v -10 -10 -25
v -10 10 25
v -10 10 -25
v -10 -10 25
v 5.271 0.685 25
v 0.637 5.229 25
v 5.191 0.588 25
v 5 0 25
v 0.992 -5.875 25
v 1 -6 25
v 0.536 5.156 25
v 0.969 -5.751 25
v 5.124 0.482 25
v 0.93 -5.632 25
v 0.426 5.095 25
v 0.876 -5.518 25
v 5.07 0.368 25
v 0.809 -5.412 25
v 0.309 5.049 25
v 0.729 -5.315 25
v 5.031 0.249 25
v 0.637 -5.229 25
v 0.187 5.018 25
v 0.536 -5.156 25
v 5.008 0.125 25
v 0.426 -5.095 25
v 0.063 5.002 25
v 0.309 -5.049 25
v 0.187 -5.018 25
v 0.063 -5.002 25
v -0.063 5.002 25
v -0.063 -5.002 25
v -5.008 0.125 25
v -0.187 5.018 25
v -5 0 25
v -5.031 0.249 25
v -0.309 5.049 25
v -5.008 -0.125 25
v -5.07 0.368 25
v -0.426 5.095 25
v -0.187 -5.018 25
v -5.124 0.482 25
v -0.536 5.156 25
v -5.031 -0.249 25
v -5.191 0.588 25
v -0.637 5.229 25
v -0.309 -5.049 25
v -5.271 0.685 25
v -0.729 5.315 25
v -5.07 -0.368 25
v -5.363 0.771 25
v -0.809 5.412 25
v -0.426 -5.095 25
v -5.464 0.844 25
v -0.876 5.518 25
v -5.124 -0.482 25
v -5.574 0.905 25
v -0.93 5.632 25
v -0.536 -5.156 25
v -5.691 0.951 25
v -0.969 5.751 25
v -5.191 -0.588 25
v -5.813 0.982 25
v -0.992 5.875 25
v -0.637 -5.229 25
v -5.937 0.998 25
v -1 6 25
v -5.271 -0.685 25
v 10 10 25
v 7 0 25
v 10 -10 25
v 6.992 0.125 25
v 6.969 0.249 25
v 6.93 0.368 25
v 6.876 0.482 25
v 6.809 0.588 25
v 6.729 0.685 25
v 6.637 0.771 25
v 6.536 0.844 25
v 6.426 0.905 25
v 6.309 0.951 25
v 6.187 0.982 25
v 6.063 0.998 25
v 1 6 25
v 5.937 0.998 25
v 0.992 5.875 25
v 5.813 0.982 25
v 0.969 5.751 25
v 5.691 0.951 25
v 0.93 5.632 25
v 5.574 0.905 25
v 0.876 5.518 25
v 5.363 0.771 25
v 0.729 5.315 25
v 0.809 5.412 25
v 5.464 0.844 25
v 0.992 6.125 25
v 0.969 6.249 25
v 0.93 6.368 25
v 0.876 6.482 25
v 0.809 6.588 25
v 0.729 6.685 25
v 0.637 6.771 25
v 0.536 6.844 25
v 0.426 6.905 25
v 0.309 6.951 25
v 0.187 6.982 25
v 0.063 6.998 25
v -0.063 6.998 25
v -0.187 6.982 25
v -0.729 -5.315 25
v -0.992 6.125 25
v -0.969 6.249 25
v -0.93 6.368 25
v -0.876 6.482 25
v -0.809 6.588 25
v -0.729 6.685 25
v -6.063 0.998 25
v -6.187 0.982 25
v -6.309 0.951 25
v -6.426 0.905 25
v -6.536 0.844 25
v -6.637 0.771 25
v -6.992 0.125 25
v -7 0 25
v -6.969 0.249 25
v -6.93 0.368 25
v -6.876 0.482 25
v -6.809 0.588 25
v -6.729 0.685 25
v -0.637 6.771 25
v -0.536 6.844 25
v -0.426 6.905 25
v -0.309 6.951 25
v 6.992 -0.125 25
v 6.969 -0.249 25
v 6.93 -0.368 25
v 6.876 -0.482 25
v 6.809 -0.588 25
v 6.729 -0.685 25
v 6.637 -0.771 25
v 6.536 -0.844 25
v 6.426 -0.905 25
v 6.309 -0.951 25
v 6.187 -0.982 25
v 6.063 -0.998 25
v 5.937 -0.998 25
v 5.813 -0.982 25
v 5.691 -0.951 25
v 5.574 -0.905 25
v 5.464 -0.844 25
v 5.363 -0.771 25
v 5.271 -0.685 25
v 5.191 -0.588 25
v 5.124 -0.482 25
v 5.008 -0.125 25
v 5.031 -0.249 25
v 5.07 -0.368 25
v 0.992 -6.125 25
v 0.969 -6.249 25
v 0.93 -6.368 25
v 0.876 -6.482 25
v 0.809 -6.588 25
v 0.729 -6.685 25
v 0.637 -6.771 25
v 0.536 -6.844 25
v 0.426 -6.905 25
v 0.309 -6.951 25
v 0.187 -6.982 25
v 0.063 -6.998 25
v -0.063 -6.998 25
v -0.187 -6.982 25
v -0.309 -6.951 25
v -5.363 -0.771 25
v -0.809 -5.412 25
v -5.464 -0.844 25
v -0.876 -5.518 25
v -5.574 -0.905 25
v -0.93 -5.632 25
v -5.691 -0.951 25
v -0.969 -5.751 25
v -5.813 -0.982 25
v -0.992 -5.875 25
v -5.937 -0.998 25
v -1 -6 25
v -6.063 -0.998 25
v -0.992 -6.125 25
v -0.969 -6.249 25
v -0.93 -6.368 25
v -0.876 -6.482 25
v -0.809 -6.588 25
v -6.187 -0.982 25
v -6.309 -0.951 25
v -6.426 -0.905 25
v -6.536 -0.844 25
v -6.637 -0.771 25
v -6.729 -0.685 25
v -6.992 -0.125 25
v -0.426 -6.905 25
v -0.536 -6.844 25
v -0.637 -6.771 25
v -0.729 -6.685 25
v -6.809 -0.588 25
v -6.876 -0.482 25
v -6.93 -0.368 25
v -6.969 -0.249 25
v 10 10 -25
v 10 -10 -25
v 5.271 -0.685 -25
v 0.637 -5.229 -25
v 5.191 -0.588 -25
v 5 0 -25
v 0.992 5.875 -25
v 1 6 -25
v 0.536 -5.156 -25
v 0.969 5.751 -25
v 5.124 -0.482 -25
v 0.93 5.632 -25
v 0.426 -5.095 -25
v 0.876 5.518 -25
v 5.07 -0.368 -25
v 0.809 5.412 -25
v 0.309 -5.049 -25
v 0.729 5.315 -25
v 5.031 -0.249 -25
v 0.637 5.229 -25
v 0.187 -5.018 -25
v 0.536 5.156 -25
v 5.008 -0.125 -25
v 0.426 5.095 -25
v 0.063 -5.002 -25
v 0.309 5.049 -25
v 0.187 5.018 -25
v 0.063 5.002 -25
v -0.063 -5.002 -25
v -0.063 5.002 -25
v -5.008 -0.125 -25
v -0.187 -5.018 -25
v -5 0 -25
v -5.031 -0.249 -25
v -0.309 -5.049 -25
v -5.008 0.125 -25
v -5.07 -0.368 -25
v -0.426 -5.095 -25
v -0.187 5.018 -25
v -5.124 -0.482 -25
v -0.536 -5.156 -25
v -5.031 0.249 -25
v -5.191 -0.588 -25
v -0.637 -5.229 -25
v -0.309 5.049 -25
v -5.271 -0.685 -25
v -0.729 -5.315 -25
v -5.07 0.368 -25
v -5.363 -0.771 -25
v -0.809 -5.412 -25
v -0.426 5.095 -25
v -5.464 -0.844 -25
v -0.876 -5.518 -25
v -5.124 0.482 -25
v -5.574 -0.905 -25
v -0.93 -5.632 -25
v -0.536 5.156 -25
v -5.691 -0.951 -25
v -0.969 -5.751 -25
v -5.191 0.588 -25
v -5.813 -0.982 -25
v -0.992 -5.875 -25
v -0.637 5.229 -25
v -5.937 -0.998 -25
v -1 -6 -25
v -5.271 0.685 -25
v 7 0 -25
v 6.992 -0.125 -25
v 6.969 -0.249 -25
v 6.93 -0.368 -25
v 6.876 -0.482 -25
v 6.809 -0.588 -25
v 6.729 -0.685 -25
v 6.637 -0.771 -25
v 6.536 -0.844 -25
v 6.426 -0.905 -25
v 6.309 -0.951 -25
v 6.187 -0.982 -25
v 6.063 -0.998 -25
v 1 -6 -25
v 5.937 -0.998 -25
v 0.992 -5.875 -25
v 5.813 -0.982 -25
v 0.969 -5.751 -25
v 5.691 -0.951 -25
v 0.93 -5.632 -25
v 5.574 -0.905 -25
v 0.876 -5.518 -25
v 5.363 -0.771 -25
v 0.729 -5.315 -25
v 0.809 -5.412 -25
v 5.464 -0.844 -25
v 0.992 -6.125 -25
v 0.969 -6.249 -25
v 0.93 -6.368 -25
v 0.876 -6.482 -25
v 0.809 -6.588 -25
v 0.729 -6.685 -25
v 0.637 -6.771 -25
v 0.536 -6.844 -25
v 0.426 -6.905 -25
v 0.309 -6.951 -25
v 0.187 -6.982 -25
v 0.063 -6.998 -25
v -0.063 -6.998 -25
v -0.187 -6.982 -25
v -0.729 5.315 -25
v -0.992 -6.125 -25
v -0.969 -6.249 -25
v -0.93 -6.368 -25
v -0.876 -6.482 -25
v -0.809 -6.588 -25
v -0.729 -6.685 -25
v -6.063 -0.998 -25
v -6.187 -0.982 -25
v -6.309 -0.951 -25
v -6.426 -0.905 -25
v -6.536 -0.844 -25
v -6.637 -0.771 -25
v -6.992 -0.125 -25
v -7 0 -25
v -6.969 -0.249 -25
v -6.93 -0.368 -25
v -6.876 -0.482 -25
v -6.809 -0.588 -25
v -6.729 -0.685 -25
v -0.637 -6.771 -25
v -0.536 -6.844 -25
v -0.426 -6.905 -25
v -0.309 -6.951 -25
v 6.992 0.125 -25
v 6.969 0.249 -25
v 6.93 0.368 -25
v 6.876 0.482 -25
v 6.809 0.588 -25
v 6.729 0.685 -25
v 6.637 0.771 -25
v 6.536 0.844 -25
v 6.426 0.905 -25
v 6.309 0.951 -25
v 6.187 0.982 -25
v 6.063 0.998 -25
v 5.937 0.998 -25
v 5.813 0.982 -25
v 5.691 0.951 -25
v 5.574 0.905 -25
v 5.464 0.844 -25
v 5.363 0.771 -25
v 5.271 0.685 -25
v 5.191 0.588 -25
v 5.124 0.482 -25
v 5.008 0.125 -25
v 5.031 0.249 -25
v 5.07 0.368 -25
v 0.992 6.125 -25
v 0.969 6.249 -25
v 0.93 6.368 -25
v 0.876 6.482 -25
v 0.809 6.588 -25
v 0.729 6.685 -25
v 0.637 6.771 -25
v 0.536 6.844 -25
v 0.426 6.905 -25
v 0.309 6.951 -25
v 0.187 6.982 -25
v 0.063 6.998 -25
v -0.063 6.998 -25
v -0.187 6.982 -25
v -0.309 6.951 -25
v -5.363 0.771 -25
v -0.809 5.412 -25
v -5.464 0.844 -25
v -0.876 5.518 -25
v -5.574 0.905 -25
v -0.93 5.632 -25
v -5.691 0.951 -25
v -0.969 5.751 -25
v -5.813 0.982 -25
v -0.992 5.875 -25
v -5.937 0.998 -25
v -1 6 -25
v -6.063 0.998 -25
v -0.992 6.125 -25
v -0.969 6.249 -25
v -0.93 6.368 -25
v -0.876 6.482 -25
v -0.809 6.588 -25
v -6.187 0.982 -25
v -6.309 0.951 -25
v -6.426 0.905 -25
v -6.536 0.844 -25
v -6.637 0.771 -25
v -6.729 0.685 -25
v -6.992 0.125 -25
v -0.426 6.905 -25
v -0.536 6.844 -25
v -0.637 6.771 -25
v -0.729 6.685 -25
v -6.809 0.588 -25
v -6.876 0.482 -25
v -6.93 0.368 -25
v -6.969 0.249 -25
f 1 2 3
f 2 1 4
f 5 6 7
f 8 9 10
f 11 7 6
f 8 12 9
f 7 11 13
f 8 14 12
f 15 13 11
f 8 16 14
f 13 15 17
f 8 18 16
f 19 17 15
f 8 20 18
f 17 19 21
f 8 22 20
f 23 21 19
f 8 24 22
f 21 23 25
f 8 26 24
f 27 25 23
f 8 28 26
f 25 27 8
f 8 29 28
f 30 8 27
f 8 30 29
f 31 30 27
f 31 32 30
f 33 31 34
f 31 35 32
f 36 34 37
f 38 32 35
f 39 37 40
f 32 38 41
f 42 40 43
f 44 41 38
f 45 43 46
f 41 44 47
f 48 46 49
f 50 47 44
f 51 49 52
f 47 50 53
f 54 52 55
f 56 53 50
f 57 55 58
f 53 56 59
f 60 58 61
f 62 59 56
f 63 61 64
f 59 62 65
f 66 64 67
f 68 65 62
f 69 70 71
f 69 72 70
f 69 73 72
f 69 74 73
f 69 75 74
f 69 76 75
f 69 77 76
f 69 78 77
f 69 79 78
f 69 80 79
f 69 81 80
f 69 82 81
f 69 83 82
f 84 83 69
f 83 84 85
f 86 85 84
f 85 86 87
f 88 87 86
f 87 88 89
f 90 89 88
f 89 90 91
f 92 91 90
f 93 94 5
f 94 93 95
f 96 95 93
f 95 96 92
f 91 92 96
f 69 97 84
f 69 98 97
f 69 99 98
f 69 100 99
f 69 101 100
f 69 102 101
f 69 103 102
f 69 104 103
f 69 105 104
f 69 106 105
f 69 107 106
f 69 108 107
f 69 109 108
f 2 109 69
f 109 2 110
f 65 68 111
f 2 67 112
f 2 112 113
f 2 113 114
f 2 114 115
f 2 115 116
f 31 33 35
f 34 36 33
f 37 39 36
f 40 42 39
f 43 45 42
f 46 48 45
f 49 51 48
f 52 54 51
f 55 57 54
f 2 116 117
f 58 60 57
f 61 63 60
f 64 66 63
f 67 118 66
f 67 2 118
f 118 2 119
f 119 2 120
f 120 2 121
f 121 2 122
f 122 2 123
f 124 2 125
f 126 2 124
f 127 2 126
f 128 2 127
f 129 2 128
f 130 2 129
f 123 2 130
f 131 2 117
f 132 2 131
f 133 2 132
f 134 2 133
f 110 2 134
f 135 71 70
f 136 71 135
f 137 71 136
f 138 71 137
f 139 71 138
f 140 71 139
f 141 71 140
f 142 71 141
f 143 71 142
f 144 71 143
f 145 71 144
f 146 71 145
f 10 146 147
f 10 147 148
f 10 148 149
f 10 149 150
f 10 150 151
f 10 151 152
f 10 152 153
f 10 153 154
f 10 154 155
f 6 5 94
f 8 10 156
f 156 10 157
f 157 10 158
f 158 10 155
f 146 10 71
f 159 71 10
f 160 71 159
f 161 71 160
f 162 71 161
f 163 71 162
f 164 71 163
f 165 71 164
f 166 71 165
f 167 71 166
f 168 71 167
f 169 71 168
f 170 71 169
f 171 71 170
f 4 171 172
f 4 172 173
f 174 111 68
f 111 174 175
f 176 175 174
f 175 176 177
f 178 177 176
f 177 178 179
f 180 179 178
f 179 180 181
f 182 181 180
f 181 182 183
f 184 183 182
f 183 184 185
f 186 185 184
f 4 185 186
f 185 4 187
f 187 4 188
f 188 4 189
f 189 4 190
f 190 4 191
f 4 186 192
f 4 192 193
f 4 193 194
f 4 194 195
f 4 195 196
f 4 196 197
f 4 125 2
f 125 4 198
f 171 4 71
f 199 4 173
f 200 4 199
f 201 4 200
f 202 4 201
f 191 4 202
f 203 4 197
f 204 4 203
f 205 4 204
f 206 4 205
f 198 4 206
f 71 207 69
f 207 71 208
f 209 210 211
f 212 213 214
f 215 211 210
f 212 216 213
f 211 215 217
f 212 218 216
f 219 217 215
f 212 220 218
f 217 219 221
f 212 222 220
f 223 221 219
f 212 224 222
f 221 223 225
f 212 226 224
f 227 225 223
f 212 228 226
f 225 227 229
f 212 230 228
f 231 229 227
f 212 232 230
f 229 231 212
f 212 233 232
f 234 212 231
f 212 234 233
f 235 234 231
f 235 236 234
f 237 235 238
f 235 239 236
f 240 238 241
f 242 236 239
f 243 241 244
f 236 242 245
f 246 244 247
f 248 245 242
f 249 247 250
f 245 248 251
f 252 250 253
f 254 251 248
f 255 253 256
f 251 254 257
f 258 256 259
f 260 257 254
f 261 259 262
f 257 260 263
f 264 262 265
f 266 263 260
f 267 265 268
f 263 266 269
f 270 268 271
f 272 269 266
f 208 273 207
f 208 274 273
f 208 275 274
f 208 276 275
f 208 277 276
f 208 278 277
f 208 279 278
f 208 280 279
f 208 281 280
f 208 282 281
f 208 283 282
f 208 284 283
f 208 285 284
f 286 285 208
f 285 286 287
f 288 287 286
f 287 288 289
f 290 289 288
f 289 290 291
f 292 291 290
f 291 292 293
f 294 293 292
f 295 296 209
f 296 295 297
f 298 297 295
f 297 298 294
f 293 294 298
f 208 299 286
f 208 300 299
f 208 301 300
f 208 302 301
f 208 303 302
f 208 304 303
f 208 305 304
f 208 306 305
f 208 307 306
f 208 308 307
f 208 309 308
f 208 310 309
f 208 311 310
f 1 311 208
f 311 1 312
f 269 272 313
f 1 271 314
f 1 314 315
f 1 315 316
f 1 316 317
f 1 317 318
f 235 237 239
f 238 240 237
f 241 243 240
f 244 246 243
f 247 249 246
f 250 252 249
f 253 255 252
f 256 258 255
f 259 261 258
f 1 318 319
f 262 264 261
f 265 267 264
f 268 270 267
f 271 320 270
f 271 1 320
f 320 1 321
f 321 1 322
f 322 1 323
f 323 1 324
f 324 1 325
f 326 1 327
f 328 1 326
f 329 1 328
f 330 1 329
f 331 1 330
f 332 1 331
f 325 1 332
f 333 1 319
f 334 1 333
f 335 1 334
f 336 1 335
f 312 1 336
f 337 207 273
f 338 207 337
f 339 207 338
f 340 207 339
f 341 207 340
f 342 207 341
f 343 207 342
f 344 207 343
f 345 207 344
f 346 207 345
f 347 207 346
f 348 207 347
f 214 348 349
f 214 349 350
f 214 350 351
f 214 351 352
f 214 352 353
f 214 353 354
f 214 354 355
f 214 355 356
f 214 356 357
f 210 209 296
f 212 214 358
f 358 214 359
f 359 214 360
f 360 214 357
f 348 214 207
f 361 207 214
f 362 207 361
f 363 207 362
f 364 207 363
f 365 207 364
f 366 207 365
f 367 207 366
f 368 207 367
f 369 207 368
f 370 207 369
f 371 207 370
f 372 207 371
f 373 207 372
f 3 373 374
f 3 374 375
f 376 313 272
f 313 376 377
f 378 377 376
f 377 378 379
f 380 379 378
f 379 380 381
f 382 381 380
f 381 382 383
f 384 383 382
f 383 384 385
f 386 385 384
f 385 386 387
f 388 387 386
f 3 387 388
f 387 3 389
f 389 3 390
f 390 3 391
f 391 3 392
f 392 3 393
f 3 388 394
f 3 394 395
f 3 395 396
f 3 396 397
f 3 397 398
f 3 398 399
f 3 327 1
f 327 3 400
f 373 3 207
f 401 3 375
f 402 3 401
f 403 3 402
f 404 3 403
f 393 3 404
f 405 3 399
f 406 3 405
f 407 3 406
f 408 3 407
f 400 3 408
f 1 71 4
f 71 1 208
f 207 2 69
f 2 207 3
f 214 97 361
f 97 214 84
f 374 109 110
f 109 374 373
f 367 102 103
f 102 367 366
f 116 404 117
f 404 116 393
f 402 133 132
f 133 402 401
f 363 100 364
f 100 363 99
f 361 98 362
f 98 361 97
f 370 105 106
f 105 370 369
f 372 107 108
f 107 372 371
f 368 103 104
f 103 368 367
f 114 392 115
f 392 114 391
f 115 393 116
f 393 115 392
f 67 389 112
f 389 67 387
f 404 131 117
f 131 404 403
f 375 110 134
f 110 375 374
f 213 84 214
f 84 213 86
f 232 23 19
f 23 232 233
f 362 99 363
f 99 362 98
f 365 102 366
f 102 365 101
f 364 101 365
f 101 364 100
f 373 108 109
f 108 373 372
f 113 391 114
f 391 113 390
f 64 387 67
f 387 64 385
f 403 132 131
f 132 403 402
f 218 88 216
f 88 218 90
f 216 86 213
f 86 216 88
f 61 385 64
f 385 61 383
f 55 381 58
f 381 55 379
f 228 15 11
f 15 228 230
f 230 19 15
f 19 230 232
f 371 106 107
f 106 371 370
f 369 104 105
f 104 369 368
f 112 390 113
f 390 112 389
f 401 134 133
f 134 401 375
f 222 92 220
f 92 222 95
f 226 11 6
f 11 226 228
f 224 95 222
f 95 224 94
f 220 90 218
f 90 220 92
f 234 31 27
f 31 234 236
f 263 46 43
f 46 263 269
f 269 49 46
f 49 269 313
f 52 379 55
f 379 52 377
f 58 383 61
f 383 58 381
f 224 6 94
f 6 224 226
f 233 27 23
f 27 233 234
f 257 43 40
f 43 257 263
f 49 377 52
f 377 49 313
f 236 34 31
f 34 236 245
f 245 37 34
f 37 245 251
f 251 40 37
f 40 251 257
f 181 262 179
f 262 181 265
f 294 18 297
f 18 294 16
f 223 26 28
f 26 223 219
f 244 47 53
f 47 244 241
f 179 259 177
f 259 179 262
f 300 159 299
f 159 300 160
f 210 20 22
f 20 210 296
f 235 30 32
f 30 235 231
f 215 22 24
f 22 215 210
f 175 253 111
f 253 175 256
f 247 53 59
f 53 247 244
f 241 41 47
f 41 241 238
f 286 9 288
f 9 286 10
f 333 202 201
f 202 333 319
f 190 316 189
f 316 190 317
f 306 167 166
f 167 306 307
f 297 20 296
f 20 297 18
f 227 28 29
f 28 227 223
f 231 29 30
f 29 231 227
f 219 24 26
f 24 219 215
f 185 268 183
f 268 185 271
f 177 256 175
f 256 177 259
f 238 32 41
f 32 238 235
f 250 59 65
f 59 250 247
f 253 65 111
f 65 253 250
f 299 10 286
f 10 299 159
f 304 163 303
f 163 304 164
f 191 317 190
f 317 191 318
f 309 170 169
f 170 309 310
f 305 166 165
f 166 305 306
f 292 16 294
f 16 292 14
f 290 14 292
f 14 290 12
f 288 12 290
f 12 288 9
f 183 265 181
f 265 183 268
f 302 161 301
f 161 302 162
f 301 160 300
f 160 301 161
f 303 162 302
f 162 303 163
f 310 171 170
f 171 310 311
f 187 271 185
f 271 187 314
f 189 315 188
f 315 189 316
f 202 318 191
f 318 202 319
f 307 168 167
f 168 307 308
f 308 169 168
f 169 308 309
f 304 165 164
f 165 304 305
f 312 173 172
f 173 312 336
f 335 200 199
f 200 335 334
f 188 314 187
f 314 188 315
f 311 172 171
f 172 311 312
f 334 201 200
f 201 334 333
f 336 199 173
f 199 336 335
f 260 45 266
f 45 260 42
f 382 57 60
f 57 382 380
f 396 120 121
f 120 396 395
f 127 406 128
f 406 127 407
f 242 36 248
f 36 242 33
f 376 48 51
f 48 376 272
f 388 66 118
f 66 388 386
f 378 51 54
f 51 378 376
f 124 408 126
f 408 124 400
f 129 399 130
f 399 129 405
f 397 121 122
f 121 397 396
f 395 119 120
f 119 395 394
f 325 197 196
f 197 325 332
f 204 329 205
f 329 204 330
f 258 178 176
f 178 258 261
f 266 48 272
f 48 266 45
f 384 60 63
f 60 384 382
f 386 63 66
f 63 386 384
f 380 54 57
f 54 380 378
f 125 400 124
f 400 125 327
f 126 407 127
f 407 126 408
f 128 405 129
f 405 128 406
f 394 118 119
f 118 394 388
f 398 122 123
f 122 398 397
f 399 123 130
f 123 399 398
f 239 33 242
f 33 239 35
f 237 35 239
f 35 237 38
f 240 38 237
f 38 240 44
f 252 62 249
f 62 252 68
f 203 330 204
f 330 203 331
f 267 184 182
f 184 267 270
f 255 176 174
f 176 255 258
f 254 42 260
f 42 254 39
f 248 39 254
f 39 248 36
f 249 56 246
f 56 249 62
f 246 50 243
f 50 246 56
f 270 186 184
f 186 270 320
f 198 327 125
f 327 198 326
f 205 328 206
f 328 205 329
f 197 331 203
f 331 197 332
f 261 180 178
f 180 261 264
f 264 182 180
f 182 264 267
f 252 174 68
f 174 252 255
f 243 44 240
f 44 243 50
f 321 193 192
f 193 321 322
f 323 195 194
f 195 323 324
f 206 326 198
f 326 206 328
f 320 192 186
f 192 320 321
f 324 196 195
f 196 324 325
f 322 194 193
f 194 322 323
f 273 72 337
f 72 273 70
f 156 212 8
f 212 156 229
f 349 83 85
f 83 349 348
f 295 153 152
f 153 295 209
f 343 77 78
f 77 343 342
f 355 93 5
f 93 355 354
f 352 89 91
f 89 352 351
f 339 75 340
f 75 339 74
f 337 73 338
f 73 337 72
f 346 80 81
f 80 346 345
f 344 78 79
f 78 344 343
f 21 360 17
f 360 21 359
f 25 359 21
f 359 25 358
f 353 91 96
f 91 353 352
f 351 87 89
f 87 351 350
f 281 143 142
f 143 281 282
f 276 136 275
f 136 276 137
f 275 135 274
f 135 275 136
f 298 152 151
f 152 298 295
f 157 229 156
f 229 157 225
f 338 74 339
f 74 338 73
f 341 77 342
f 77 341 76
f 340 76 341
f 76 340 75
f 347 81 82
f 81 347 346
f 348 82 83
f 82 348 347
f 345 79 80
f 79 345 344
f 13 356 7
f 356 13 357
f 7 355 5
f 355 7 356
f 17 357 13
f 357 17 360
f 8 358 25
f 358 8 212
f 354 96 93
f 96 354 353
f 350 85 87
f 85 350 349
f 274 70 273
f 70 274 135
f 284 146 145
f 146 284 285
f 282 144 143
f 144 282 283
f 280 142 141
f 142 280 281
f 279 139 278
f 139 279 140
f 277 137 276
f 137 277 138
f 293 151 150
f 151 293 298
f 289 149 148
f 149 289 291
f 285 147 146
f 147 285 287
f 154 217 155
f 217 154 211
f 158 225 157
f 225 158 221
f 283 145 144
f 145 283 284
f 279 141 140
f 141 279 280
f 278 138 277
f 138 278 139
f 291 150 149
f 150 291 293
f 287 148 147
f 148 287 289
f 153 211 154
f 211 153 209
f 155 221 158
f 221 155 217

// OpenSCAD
$fn=50;
difference(){
cube([20,20,50],center=true);
    translate([0,6,0])
cylinder(h=51,r=1,center=true);
    translate([0,-6,0])
cylinder(h=51,r=1,center=true);
    translate([-6,0,0])
cylinder(h=51,r=1,center=true);
    translate([6,0,0])
cylinder(h=51,r=1,center=true);
}
